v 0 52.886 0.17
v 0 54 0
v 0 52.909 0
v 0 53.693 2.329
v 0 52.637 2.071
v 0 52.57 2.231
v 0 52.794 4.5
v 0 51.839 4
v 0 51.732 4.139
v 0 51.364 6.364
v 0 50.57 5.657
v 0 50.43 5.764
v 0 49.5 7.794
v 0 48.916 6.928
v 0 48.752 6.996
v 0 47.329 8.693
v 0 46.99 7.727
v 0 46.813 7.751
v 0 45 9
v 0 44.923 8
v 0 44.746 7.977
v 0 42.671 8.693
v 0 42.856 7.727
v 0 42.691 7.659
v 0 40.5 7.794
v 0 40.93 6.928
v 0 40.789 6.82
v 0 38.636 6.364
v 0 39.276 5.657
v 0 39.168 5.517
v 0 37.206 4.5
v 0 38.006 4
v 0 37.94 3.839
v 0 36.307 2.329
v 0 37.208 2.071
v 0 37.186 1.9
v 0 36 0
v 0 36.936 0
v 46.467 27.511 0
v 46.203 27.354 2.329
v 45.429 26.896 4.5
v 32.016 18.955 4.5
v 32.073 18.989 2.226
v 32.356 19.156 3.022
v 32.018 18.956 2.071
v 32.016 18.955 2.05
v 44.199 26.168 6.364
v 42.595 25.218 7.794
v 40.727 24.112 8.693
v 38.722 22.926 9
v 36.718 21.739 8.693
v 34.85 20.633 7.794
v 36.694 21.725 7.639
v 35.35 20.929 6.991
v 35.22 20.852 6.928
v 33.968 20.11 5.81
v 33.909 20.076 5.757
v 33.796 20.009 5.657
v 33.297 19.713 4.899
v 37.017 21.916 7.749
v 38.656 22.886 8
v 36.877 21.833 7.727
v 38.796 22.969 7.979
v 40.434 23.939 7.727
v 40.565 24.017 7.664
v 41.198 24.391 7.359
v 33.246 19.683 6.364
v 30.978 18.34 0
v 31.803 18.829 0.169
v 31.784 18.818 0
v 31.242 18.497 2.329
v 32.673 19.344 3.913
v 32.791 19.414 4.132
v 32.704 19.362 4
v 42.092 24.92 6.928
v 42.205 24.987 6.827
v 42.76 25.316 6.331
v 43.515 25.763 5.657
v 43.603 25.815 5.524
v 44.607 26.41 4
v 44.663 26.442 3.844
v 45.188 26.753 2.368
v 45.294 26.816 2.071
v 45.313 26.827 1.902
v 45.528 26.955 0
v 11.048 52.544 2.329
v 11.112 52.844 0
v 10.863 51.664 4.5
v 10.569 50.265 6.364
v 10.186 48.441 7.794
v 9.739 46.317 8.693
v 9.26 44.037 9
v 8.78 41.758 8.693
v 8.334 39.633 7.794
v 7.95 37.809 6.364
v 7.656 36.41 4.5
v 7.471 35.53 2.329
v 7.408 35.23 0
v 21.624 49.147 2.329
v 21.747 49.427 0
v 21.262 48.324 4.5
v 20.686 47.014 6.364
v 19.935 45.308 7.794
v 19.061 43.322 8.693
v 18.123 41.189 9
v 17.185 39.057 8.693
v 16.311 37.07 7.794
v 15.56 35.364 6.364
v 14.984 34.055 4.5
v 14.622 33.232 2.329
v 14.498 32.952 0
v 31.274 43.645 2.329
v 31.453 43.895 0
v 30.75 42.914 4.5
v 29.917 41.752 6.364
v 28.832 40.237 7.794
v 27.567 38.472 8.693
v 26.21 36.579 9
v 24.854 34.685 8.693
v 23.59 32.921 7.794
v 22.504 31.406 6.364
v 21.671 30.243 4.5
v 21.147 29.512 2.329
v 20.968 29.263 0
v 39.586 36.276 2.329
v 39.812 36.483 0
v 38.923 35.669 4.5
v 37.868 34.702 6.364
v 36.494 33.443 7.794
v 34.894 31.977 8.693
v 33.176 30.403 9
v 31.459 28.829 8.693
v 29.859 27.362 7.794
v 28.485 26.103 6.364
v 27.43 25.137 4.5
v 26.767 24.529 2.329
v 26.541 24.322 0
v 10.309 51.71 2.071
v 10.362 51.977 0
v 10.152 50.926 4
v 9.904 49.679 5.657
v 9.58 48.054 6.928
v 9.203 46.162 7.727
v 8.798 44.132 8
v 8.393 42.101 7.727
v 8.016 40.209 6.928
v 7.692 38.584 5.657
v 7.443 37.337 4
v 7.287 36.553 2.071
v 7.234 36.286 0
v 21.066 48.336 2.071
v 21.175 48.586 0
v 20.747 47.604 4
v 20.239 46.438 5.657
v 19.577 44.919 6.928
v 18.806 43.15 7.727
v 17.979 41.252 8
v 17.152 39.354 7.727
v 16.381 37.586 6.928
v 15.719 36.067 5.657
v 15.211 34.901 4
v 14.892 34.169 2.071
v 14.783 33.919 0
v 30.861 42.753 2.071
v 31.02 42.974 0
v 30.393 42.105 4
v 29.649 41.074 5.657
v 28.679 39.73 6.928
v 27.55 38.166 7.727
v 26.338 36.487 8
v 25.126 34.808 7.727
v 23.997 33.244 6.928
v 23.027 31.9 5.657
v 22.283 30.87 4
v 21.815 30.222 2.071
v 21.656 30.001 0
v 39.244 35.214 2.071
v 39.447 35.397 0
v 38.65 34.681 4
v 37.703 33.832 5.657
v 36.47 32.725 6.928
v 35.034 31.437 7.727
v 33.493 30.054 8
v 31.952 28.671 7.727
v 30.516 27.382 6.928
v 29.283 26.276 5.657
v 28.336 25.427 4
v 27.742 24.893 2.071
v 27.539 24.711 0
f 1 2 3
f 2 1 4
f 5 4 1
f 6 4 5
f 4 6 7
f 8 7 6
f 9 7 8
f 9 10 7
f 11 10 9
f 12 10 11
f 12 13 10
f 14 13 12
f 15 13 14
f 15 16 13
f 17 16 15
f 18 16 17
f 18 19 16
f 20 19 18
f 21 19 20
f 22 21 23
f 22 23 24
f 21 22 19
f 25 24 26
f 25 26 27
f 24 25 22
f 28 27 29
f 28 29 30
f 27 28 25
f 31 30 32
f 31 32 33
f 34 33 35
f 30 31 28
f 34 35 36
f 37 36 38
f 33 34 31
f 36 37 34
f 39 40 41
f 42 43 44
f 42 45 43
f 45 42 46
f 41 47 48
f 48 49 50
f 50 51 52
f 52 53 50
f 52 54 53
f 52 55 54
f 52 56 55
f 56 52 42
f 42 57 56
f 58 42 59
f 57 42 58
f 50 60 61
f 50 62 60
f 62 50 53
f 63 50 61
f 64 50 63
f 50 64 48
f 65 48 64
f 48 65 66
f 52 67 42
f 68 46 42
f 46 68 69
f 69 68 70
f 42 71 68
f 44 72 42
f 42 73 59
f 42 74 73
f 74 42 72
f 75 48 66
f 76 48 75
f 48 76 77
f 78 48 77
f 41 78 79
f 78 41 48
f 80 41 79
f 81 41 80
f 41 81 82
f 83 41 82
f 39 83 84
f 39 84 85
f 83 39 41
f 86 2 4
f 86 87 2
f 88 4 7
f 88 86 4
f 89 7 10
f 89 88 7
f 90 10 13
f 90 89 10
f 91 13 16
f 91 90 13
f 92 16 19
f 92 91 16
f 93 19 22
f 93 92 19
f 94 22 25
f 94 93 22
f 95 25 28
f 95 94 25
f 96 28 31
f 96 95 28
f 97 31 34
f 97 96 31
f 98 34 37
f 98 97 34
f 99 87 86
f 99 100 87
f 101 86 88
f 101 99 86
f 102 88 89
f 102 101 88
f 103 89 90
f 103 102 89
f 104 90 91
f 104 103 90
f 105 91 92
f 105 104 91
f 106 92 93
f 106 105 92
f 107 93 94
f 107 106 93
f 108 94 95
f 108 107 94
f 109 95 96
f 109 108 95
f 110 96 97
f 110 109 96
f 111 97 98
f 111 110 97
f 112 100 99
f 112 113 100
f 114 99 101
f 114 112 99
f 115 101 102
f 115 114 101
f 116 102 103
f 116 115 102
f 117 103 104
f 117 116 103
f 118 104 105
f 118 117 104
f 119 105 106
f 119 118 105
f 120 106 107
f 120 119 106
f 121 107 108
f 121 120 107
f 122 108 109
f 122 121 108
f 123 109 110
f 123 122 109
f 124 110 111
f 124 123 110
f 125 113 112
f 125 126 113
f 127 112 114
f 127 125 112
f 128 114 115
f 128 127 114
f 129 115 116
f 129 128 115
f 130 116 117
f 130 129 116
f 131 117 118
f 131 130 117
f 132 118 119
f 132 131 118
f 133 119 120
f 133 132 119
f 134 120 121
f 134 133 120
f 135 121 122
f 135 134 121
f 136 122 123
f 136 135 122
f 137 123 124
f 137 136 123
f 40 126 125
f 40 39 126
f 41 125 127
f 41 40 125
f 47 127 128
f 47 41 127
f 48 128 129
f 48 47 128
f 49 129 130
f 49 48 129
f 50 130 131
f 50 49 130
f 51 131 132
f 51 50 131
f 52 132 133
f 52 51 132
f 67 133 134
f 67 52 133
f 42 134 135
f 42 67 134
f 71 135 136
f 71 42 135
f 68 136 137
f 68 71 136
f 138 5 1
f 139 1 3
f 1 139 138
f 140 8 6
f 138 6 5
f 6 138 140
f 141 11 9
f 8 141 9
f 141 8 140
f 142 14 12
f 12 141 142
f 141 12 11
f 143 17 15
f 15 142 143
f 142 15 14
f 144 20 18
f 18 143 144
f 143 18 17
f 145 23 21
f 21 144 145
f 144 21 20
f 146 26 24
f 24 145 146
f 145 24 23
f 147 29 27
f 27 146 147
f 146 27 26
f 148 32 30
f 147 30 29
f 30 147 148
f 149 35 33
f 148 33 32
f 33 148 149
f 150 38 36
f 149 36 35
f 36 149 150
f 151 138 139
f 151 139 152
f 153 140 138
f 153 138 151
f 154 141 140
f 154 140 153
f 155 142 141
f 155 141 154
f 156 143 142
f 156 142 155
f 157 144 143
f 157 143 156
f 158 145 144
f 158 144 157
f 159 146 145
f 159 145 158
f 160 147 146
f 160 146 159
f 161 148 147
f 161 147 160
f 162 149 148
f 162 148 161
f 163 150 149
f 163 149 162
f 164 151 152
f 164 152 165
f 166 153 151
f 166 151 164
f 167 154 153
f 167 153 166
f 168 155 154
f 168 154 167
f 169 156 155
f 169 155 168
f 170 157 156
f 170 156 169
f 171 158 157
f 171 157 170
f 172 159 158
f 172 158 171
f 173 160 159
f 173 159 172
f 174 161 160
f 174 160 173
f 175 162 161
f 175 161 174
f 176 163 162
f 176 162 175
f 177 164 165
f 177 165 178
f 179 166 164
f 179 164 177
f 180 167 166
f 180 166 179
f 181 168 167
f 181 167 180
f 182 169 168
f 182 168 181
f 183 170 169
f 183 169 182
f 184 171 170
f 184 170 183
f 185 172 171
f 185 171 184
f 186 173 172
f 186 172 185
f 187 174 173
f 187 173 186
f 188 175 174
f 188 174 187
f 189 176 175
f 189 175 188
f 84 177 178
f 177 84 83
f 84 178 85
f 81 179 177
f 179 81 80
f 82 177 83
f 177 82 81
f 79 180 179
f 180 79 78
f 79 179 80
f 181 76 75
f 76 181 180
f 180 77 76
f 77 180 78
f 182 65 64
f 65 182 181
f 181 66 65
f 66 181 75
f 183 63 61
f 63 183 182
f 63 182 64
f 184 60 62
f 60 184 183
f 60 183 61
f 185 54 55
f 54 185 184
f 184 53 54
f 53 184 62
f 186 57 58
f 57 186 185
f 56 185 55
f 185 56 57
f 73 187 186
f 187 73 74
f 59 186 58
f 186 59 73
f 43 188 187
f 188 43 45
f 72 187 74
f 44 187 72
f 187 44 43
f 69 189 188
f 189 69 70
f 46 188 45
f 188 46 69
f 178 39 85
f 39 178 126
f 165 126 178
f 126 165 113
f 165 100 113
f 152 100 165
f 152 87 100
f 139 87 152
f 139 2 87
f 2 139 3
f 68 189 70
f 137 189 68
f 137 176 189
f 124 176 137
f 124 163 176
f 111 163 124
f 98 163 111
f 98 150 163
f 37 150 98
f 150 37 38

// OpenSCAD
// file: ../build_environments.scad
// build_environments.scad: modules to build level sections
//

module pool(diameter=10.0, wall_height=2.0, step_width=3.0, connections=[])
{
    difference() {
        union() {
        difference() {
            cylinder(h=0.5,r1=diameter+step_width,r2=diameter+step_width,$fn=48);
            translate([0,0,-0.1])
                cylinder(h=0.7,r1=diameter,r2=diameter,$fn=48);
        }
        difference() {
            cylinder(h=wall_height,r1=diameter+step_width+1.0,r2=diameter+step_width+1.0,$fn=48);
            translate([0,0,-0.1])
                cylinder(h=wall_height+0.2,r1=diameter+step_width,r2=diameter+step_width,$fn=48);
        }
        }
    
        for (c = connections)
        {
            rotate([0,90,0]) {
                angle = atan2(c[1],c[0]);
                rotate([-angle,0,0]) {
                    cylinder(h=diameter+5.0,r1=c[2],r2=c[2],$fn=48);
                }
            }
        }
    }
}

module straight(length=10.0, width=2.0, dy1=0.0, dy2=0.0, dz=0.0)
{
    dims = [0, 0, 0, 0, 0, (dz/length)];
    matrix = [
        [ 1, dims[0], dims[1], 0 ],
        [ dims[2], 1, dims[4], 0 ],
        [ dims[5], dims[3], 1, 0 ],
        [ 0, 0, 0, 1 ]
    ];
    multmatrix(matrix)
    difference() {
        translate([dy1,0,0])
        union() {
            rotate([0,90,0]) {
                difference() {
                    cylinder(h=(length-dy1-dy2),r1=width+1.0,r2=width+1.0,$fn=24);
                    translate([0,0,-0.1])
                        cylinder(h=(length-dy1-dy2+0.2),r1=width,r2=width,$fn=24);
                }
                difference() {
                    cylinder(h=1.0,r1=width+2.0,r2=width+2.0,$fn=24);
                    translate([0,0,-0.1])
                        cylinder(h=1.2,r1=width,r2=width,$fn=24);
                }
                translate([0,0,(length-dy1-dy2)-1.0]) {
                    difference() {
                        cylinder(h=1.0,r1=width+2.0,r2=width+2.0,$fn=24);
                        translate([0,0,-0.1])
                            cylinder(h=1.2,r1=width,r2=width,$fn=24);
                    }
                }
            }
        }
        translate([0,0,-(2*width+4.0)/2])
            cube([3*length,3*length,2*width+4.0],center=true);
    }
}

module curve(p0=[0,0], center=[0,0], dir=1, angle=0.0, width=2.0)
{
    radius = sqrt((p0[0]-center[0])*(p0[0]-center[0]) + (p0[1]-center[1])*(p0[1]-center[1]));
    if (dir == 0) {
        difference() {
            rotate([0,0,-90])
            difference() {
                rotate_extrude(angle = angle, convexity = 10, $fn=32)
                    translate([radius, 0, 0])
                        circle(r = width+1.0,$fn=24);
                rotate([0,0,-1.0])
                    rotate_extrude(angle = angle+2.0, convexity = 10, $fn=32)
                        translate([radius, 0, 0])
                            circle(r = width,$fn=24);
            }
            translate([0,0,-(2*width+4.0)/2])
                cube([5*radius,5*radius,2*width+4.0],center=true);
        }
    }
    else {
        difference() {
            rotate([0,0,90])
            difference() {
                rotate_extrude(angle = -angle, convexity = 10, $fn=32)
                    translate([radius, 0, 0])
                        circle(r = width+1.0,$fn=24);
                rotate([0,0,1.0])
                    rotate_extrude(angle = -angle-2.0, convexity = 10, $fn=32)
                        translate([radius, 0, 0])
                            circle(r = width,$fn=24);
            }
            translate([0,0,-(2*width+4.0)/2])
                cube([5*radius,5*radius,2*width+4.0],center=true);
        }
    }

}

// test pool
//pool(diameter=12.0000, wall_height=3.0000, step_width=3.0000, connections=[[0.0000,-26.0000,2.0000], [23.6074,0.0000,2.0000]]);

// test straight, slope
//straight(length=26.0000, width=2.0000, dy1=11.8322, dy2=6.7082, dz=0.0000);
//straight(length=29.1549, width=12.0000, dy1=0.0000, dy2=0.0000, dz=-15.0000);

// test curve
//curve(p0=[23.6074, 0.0000], center=[23.6074, 5.0000], dir=0, angle=60.1011, width=2.0000);
//curve(p0=[33.6426, 12.4219], center=[37.9771, 9.9295], dir=1, angle=120.4627, width=2.0000);
// main file
use <../build_environments.scad>;
curve(p0=[250.1802, 196.5934], center=[272.5049, 235.6653], dir=1, angle=59.3724, width=8.0000);
